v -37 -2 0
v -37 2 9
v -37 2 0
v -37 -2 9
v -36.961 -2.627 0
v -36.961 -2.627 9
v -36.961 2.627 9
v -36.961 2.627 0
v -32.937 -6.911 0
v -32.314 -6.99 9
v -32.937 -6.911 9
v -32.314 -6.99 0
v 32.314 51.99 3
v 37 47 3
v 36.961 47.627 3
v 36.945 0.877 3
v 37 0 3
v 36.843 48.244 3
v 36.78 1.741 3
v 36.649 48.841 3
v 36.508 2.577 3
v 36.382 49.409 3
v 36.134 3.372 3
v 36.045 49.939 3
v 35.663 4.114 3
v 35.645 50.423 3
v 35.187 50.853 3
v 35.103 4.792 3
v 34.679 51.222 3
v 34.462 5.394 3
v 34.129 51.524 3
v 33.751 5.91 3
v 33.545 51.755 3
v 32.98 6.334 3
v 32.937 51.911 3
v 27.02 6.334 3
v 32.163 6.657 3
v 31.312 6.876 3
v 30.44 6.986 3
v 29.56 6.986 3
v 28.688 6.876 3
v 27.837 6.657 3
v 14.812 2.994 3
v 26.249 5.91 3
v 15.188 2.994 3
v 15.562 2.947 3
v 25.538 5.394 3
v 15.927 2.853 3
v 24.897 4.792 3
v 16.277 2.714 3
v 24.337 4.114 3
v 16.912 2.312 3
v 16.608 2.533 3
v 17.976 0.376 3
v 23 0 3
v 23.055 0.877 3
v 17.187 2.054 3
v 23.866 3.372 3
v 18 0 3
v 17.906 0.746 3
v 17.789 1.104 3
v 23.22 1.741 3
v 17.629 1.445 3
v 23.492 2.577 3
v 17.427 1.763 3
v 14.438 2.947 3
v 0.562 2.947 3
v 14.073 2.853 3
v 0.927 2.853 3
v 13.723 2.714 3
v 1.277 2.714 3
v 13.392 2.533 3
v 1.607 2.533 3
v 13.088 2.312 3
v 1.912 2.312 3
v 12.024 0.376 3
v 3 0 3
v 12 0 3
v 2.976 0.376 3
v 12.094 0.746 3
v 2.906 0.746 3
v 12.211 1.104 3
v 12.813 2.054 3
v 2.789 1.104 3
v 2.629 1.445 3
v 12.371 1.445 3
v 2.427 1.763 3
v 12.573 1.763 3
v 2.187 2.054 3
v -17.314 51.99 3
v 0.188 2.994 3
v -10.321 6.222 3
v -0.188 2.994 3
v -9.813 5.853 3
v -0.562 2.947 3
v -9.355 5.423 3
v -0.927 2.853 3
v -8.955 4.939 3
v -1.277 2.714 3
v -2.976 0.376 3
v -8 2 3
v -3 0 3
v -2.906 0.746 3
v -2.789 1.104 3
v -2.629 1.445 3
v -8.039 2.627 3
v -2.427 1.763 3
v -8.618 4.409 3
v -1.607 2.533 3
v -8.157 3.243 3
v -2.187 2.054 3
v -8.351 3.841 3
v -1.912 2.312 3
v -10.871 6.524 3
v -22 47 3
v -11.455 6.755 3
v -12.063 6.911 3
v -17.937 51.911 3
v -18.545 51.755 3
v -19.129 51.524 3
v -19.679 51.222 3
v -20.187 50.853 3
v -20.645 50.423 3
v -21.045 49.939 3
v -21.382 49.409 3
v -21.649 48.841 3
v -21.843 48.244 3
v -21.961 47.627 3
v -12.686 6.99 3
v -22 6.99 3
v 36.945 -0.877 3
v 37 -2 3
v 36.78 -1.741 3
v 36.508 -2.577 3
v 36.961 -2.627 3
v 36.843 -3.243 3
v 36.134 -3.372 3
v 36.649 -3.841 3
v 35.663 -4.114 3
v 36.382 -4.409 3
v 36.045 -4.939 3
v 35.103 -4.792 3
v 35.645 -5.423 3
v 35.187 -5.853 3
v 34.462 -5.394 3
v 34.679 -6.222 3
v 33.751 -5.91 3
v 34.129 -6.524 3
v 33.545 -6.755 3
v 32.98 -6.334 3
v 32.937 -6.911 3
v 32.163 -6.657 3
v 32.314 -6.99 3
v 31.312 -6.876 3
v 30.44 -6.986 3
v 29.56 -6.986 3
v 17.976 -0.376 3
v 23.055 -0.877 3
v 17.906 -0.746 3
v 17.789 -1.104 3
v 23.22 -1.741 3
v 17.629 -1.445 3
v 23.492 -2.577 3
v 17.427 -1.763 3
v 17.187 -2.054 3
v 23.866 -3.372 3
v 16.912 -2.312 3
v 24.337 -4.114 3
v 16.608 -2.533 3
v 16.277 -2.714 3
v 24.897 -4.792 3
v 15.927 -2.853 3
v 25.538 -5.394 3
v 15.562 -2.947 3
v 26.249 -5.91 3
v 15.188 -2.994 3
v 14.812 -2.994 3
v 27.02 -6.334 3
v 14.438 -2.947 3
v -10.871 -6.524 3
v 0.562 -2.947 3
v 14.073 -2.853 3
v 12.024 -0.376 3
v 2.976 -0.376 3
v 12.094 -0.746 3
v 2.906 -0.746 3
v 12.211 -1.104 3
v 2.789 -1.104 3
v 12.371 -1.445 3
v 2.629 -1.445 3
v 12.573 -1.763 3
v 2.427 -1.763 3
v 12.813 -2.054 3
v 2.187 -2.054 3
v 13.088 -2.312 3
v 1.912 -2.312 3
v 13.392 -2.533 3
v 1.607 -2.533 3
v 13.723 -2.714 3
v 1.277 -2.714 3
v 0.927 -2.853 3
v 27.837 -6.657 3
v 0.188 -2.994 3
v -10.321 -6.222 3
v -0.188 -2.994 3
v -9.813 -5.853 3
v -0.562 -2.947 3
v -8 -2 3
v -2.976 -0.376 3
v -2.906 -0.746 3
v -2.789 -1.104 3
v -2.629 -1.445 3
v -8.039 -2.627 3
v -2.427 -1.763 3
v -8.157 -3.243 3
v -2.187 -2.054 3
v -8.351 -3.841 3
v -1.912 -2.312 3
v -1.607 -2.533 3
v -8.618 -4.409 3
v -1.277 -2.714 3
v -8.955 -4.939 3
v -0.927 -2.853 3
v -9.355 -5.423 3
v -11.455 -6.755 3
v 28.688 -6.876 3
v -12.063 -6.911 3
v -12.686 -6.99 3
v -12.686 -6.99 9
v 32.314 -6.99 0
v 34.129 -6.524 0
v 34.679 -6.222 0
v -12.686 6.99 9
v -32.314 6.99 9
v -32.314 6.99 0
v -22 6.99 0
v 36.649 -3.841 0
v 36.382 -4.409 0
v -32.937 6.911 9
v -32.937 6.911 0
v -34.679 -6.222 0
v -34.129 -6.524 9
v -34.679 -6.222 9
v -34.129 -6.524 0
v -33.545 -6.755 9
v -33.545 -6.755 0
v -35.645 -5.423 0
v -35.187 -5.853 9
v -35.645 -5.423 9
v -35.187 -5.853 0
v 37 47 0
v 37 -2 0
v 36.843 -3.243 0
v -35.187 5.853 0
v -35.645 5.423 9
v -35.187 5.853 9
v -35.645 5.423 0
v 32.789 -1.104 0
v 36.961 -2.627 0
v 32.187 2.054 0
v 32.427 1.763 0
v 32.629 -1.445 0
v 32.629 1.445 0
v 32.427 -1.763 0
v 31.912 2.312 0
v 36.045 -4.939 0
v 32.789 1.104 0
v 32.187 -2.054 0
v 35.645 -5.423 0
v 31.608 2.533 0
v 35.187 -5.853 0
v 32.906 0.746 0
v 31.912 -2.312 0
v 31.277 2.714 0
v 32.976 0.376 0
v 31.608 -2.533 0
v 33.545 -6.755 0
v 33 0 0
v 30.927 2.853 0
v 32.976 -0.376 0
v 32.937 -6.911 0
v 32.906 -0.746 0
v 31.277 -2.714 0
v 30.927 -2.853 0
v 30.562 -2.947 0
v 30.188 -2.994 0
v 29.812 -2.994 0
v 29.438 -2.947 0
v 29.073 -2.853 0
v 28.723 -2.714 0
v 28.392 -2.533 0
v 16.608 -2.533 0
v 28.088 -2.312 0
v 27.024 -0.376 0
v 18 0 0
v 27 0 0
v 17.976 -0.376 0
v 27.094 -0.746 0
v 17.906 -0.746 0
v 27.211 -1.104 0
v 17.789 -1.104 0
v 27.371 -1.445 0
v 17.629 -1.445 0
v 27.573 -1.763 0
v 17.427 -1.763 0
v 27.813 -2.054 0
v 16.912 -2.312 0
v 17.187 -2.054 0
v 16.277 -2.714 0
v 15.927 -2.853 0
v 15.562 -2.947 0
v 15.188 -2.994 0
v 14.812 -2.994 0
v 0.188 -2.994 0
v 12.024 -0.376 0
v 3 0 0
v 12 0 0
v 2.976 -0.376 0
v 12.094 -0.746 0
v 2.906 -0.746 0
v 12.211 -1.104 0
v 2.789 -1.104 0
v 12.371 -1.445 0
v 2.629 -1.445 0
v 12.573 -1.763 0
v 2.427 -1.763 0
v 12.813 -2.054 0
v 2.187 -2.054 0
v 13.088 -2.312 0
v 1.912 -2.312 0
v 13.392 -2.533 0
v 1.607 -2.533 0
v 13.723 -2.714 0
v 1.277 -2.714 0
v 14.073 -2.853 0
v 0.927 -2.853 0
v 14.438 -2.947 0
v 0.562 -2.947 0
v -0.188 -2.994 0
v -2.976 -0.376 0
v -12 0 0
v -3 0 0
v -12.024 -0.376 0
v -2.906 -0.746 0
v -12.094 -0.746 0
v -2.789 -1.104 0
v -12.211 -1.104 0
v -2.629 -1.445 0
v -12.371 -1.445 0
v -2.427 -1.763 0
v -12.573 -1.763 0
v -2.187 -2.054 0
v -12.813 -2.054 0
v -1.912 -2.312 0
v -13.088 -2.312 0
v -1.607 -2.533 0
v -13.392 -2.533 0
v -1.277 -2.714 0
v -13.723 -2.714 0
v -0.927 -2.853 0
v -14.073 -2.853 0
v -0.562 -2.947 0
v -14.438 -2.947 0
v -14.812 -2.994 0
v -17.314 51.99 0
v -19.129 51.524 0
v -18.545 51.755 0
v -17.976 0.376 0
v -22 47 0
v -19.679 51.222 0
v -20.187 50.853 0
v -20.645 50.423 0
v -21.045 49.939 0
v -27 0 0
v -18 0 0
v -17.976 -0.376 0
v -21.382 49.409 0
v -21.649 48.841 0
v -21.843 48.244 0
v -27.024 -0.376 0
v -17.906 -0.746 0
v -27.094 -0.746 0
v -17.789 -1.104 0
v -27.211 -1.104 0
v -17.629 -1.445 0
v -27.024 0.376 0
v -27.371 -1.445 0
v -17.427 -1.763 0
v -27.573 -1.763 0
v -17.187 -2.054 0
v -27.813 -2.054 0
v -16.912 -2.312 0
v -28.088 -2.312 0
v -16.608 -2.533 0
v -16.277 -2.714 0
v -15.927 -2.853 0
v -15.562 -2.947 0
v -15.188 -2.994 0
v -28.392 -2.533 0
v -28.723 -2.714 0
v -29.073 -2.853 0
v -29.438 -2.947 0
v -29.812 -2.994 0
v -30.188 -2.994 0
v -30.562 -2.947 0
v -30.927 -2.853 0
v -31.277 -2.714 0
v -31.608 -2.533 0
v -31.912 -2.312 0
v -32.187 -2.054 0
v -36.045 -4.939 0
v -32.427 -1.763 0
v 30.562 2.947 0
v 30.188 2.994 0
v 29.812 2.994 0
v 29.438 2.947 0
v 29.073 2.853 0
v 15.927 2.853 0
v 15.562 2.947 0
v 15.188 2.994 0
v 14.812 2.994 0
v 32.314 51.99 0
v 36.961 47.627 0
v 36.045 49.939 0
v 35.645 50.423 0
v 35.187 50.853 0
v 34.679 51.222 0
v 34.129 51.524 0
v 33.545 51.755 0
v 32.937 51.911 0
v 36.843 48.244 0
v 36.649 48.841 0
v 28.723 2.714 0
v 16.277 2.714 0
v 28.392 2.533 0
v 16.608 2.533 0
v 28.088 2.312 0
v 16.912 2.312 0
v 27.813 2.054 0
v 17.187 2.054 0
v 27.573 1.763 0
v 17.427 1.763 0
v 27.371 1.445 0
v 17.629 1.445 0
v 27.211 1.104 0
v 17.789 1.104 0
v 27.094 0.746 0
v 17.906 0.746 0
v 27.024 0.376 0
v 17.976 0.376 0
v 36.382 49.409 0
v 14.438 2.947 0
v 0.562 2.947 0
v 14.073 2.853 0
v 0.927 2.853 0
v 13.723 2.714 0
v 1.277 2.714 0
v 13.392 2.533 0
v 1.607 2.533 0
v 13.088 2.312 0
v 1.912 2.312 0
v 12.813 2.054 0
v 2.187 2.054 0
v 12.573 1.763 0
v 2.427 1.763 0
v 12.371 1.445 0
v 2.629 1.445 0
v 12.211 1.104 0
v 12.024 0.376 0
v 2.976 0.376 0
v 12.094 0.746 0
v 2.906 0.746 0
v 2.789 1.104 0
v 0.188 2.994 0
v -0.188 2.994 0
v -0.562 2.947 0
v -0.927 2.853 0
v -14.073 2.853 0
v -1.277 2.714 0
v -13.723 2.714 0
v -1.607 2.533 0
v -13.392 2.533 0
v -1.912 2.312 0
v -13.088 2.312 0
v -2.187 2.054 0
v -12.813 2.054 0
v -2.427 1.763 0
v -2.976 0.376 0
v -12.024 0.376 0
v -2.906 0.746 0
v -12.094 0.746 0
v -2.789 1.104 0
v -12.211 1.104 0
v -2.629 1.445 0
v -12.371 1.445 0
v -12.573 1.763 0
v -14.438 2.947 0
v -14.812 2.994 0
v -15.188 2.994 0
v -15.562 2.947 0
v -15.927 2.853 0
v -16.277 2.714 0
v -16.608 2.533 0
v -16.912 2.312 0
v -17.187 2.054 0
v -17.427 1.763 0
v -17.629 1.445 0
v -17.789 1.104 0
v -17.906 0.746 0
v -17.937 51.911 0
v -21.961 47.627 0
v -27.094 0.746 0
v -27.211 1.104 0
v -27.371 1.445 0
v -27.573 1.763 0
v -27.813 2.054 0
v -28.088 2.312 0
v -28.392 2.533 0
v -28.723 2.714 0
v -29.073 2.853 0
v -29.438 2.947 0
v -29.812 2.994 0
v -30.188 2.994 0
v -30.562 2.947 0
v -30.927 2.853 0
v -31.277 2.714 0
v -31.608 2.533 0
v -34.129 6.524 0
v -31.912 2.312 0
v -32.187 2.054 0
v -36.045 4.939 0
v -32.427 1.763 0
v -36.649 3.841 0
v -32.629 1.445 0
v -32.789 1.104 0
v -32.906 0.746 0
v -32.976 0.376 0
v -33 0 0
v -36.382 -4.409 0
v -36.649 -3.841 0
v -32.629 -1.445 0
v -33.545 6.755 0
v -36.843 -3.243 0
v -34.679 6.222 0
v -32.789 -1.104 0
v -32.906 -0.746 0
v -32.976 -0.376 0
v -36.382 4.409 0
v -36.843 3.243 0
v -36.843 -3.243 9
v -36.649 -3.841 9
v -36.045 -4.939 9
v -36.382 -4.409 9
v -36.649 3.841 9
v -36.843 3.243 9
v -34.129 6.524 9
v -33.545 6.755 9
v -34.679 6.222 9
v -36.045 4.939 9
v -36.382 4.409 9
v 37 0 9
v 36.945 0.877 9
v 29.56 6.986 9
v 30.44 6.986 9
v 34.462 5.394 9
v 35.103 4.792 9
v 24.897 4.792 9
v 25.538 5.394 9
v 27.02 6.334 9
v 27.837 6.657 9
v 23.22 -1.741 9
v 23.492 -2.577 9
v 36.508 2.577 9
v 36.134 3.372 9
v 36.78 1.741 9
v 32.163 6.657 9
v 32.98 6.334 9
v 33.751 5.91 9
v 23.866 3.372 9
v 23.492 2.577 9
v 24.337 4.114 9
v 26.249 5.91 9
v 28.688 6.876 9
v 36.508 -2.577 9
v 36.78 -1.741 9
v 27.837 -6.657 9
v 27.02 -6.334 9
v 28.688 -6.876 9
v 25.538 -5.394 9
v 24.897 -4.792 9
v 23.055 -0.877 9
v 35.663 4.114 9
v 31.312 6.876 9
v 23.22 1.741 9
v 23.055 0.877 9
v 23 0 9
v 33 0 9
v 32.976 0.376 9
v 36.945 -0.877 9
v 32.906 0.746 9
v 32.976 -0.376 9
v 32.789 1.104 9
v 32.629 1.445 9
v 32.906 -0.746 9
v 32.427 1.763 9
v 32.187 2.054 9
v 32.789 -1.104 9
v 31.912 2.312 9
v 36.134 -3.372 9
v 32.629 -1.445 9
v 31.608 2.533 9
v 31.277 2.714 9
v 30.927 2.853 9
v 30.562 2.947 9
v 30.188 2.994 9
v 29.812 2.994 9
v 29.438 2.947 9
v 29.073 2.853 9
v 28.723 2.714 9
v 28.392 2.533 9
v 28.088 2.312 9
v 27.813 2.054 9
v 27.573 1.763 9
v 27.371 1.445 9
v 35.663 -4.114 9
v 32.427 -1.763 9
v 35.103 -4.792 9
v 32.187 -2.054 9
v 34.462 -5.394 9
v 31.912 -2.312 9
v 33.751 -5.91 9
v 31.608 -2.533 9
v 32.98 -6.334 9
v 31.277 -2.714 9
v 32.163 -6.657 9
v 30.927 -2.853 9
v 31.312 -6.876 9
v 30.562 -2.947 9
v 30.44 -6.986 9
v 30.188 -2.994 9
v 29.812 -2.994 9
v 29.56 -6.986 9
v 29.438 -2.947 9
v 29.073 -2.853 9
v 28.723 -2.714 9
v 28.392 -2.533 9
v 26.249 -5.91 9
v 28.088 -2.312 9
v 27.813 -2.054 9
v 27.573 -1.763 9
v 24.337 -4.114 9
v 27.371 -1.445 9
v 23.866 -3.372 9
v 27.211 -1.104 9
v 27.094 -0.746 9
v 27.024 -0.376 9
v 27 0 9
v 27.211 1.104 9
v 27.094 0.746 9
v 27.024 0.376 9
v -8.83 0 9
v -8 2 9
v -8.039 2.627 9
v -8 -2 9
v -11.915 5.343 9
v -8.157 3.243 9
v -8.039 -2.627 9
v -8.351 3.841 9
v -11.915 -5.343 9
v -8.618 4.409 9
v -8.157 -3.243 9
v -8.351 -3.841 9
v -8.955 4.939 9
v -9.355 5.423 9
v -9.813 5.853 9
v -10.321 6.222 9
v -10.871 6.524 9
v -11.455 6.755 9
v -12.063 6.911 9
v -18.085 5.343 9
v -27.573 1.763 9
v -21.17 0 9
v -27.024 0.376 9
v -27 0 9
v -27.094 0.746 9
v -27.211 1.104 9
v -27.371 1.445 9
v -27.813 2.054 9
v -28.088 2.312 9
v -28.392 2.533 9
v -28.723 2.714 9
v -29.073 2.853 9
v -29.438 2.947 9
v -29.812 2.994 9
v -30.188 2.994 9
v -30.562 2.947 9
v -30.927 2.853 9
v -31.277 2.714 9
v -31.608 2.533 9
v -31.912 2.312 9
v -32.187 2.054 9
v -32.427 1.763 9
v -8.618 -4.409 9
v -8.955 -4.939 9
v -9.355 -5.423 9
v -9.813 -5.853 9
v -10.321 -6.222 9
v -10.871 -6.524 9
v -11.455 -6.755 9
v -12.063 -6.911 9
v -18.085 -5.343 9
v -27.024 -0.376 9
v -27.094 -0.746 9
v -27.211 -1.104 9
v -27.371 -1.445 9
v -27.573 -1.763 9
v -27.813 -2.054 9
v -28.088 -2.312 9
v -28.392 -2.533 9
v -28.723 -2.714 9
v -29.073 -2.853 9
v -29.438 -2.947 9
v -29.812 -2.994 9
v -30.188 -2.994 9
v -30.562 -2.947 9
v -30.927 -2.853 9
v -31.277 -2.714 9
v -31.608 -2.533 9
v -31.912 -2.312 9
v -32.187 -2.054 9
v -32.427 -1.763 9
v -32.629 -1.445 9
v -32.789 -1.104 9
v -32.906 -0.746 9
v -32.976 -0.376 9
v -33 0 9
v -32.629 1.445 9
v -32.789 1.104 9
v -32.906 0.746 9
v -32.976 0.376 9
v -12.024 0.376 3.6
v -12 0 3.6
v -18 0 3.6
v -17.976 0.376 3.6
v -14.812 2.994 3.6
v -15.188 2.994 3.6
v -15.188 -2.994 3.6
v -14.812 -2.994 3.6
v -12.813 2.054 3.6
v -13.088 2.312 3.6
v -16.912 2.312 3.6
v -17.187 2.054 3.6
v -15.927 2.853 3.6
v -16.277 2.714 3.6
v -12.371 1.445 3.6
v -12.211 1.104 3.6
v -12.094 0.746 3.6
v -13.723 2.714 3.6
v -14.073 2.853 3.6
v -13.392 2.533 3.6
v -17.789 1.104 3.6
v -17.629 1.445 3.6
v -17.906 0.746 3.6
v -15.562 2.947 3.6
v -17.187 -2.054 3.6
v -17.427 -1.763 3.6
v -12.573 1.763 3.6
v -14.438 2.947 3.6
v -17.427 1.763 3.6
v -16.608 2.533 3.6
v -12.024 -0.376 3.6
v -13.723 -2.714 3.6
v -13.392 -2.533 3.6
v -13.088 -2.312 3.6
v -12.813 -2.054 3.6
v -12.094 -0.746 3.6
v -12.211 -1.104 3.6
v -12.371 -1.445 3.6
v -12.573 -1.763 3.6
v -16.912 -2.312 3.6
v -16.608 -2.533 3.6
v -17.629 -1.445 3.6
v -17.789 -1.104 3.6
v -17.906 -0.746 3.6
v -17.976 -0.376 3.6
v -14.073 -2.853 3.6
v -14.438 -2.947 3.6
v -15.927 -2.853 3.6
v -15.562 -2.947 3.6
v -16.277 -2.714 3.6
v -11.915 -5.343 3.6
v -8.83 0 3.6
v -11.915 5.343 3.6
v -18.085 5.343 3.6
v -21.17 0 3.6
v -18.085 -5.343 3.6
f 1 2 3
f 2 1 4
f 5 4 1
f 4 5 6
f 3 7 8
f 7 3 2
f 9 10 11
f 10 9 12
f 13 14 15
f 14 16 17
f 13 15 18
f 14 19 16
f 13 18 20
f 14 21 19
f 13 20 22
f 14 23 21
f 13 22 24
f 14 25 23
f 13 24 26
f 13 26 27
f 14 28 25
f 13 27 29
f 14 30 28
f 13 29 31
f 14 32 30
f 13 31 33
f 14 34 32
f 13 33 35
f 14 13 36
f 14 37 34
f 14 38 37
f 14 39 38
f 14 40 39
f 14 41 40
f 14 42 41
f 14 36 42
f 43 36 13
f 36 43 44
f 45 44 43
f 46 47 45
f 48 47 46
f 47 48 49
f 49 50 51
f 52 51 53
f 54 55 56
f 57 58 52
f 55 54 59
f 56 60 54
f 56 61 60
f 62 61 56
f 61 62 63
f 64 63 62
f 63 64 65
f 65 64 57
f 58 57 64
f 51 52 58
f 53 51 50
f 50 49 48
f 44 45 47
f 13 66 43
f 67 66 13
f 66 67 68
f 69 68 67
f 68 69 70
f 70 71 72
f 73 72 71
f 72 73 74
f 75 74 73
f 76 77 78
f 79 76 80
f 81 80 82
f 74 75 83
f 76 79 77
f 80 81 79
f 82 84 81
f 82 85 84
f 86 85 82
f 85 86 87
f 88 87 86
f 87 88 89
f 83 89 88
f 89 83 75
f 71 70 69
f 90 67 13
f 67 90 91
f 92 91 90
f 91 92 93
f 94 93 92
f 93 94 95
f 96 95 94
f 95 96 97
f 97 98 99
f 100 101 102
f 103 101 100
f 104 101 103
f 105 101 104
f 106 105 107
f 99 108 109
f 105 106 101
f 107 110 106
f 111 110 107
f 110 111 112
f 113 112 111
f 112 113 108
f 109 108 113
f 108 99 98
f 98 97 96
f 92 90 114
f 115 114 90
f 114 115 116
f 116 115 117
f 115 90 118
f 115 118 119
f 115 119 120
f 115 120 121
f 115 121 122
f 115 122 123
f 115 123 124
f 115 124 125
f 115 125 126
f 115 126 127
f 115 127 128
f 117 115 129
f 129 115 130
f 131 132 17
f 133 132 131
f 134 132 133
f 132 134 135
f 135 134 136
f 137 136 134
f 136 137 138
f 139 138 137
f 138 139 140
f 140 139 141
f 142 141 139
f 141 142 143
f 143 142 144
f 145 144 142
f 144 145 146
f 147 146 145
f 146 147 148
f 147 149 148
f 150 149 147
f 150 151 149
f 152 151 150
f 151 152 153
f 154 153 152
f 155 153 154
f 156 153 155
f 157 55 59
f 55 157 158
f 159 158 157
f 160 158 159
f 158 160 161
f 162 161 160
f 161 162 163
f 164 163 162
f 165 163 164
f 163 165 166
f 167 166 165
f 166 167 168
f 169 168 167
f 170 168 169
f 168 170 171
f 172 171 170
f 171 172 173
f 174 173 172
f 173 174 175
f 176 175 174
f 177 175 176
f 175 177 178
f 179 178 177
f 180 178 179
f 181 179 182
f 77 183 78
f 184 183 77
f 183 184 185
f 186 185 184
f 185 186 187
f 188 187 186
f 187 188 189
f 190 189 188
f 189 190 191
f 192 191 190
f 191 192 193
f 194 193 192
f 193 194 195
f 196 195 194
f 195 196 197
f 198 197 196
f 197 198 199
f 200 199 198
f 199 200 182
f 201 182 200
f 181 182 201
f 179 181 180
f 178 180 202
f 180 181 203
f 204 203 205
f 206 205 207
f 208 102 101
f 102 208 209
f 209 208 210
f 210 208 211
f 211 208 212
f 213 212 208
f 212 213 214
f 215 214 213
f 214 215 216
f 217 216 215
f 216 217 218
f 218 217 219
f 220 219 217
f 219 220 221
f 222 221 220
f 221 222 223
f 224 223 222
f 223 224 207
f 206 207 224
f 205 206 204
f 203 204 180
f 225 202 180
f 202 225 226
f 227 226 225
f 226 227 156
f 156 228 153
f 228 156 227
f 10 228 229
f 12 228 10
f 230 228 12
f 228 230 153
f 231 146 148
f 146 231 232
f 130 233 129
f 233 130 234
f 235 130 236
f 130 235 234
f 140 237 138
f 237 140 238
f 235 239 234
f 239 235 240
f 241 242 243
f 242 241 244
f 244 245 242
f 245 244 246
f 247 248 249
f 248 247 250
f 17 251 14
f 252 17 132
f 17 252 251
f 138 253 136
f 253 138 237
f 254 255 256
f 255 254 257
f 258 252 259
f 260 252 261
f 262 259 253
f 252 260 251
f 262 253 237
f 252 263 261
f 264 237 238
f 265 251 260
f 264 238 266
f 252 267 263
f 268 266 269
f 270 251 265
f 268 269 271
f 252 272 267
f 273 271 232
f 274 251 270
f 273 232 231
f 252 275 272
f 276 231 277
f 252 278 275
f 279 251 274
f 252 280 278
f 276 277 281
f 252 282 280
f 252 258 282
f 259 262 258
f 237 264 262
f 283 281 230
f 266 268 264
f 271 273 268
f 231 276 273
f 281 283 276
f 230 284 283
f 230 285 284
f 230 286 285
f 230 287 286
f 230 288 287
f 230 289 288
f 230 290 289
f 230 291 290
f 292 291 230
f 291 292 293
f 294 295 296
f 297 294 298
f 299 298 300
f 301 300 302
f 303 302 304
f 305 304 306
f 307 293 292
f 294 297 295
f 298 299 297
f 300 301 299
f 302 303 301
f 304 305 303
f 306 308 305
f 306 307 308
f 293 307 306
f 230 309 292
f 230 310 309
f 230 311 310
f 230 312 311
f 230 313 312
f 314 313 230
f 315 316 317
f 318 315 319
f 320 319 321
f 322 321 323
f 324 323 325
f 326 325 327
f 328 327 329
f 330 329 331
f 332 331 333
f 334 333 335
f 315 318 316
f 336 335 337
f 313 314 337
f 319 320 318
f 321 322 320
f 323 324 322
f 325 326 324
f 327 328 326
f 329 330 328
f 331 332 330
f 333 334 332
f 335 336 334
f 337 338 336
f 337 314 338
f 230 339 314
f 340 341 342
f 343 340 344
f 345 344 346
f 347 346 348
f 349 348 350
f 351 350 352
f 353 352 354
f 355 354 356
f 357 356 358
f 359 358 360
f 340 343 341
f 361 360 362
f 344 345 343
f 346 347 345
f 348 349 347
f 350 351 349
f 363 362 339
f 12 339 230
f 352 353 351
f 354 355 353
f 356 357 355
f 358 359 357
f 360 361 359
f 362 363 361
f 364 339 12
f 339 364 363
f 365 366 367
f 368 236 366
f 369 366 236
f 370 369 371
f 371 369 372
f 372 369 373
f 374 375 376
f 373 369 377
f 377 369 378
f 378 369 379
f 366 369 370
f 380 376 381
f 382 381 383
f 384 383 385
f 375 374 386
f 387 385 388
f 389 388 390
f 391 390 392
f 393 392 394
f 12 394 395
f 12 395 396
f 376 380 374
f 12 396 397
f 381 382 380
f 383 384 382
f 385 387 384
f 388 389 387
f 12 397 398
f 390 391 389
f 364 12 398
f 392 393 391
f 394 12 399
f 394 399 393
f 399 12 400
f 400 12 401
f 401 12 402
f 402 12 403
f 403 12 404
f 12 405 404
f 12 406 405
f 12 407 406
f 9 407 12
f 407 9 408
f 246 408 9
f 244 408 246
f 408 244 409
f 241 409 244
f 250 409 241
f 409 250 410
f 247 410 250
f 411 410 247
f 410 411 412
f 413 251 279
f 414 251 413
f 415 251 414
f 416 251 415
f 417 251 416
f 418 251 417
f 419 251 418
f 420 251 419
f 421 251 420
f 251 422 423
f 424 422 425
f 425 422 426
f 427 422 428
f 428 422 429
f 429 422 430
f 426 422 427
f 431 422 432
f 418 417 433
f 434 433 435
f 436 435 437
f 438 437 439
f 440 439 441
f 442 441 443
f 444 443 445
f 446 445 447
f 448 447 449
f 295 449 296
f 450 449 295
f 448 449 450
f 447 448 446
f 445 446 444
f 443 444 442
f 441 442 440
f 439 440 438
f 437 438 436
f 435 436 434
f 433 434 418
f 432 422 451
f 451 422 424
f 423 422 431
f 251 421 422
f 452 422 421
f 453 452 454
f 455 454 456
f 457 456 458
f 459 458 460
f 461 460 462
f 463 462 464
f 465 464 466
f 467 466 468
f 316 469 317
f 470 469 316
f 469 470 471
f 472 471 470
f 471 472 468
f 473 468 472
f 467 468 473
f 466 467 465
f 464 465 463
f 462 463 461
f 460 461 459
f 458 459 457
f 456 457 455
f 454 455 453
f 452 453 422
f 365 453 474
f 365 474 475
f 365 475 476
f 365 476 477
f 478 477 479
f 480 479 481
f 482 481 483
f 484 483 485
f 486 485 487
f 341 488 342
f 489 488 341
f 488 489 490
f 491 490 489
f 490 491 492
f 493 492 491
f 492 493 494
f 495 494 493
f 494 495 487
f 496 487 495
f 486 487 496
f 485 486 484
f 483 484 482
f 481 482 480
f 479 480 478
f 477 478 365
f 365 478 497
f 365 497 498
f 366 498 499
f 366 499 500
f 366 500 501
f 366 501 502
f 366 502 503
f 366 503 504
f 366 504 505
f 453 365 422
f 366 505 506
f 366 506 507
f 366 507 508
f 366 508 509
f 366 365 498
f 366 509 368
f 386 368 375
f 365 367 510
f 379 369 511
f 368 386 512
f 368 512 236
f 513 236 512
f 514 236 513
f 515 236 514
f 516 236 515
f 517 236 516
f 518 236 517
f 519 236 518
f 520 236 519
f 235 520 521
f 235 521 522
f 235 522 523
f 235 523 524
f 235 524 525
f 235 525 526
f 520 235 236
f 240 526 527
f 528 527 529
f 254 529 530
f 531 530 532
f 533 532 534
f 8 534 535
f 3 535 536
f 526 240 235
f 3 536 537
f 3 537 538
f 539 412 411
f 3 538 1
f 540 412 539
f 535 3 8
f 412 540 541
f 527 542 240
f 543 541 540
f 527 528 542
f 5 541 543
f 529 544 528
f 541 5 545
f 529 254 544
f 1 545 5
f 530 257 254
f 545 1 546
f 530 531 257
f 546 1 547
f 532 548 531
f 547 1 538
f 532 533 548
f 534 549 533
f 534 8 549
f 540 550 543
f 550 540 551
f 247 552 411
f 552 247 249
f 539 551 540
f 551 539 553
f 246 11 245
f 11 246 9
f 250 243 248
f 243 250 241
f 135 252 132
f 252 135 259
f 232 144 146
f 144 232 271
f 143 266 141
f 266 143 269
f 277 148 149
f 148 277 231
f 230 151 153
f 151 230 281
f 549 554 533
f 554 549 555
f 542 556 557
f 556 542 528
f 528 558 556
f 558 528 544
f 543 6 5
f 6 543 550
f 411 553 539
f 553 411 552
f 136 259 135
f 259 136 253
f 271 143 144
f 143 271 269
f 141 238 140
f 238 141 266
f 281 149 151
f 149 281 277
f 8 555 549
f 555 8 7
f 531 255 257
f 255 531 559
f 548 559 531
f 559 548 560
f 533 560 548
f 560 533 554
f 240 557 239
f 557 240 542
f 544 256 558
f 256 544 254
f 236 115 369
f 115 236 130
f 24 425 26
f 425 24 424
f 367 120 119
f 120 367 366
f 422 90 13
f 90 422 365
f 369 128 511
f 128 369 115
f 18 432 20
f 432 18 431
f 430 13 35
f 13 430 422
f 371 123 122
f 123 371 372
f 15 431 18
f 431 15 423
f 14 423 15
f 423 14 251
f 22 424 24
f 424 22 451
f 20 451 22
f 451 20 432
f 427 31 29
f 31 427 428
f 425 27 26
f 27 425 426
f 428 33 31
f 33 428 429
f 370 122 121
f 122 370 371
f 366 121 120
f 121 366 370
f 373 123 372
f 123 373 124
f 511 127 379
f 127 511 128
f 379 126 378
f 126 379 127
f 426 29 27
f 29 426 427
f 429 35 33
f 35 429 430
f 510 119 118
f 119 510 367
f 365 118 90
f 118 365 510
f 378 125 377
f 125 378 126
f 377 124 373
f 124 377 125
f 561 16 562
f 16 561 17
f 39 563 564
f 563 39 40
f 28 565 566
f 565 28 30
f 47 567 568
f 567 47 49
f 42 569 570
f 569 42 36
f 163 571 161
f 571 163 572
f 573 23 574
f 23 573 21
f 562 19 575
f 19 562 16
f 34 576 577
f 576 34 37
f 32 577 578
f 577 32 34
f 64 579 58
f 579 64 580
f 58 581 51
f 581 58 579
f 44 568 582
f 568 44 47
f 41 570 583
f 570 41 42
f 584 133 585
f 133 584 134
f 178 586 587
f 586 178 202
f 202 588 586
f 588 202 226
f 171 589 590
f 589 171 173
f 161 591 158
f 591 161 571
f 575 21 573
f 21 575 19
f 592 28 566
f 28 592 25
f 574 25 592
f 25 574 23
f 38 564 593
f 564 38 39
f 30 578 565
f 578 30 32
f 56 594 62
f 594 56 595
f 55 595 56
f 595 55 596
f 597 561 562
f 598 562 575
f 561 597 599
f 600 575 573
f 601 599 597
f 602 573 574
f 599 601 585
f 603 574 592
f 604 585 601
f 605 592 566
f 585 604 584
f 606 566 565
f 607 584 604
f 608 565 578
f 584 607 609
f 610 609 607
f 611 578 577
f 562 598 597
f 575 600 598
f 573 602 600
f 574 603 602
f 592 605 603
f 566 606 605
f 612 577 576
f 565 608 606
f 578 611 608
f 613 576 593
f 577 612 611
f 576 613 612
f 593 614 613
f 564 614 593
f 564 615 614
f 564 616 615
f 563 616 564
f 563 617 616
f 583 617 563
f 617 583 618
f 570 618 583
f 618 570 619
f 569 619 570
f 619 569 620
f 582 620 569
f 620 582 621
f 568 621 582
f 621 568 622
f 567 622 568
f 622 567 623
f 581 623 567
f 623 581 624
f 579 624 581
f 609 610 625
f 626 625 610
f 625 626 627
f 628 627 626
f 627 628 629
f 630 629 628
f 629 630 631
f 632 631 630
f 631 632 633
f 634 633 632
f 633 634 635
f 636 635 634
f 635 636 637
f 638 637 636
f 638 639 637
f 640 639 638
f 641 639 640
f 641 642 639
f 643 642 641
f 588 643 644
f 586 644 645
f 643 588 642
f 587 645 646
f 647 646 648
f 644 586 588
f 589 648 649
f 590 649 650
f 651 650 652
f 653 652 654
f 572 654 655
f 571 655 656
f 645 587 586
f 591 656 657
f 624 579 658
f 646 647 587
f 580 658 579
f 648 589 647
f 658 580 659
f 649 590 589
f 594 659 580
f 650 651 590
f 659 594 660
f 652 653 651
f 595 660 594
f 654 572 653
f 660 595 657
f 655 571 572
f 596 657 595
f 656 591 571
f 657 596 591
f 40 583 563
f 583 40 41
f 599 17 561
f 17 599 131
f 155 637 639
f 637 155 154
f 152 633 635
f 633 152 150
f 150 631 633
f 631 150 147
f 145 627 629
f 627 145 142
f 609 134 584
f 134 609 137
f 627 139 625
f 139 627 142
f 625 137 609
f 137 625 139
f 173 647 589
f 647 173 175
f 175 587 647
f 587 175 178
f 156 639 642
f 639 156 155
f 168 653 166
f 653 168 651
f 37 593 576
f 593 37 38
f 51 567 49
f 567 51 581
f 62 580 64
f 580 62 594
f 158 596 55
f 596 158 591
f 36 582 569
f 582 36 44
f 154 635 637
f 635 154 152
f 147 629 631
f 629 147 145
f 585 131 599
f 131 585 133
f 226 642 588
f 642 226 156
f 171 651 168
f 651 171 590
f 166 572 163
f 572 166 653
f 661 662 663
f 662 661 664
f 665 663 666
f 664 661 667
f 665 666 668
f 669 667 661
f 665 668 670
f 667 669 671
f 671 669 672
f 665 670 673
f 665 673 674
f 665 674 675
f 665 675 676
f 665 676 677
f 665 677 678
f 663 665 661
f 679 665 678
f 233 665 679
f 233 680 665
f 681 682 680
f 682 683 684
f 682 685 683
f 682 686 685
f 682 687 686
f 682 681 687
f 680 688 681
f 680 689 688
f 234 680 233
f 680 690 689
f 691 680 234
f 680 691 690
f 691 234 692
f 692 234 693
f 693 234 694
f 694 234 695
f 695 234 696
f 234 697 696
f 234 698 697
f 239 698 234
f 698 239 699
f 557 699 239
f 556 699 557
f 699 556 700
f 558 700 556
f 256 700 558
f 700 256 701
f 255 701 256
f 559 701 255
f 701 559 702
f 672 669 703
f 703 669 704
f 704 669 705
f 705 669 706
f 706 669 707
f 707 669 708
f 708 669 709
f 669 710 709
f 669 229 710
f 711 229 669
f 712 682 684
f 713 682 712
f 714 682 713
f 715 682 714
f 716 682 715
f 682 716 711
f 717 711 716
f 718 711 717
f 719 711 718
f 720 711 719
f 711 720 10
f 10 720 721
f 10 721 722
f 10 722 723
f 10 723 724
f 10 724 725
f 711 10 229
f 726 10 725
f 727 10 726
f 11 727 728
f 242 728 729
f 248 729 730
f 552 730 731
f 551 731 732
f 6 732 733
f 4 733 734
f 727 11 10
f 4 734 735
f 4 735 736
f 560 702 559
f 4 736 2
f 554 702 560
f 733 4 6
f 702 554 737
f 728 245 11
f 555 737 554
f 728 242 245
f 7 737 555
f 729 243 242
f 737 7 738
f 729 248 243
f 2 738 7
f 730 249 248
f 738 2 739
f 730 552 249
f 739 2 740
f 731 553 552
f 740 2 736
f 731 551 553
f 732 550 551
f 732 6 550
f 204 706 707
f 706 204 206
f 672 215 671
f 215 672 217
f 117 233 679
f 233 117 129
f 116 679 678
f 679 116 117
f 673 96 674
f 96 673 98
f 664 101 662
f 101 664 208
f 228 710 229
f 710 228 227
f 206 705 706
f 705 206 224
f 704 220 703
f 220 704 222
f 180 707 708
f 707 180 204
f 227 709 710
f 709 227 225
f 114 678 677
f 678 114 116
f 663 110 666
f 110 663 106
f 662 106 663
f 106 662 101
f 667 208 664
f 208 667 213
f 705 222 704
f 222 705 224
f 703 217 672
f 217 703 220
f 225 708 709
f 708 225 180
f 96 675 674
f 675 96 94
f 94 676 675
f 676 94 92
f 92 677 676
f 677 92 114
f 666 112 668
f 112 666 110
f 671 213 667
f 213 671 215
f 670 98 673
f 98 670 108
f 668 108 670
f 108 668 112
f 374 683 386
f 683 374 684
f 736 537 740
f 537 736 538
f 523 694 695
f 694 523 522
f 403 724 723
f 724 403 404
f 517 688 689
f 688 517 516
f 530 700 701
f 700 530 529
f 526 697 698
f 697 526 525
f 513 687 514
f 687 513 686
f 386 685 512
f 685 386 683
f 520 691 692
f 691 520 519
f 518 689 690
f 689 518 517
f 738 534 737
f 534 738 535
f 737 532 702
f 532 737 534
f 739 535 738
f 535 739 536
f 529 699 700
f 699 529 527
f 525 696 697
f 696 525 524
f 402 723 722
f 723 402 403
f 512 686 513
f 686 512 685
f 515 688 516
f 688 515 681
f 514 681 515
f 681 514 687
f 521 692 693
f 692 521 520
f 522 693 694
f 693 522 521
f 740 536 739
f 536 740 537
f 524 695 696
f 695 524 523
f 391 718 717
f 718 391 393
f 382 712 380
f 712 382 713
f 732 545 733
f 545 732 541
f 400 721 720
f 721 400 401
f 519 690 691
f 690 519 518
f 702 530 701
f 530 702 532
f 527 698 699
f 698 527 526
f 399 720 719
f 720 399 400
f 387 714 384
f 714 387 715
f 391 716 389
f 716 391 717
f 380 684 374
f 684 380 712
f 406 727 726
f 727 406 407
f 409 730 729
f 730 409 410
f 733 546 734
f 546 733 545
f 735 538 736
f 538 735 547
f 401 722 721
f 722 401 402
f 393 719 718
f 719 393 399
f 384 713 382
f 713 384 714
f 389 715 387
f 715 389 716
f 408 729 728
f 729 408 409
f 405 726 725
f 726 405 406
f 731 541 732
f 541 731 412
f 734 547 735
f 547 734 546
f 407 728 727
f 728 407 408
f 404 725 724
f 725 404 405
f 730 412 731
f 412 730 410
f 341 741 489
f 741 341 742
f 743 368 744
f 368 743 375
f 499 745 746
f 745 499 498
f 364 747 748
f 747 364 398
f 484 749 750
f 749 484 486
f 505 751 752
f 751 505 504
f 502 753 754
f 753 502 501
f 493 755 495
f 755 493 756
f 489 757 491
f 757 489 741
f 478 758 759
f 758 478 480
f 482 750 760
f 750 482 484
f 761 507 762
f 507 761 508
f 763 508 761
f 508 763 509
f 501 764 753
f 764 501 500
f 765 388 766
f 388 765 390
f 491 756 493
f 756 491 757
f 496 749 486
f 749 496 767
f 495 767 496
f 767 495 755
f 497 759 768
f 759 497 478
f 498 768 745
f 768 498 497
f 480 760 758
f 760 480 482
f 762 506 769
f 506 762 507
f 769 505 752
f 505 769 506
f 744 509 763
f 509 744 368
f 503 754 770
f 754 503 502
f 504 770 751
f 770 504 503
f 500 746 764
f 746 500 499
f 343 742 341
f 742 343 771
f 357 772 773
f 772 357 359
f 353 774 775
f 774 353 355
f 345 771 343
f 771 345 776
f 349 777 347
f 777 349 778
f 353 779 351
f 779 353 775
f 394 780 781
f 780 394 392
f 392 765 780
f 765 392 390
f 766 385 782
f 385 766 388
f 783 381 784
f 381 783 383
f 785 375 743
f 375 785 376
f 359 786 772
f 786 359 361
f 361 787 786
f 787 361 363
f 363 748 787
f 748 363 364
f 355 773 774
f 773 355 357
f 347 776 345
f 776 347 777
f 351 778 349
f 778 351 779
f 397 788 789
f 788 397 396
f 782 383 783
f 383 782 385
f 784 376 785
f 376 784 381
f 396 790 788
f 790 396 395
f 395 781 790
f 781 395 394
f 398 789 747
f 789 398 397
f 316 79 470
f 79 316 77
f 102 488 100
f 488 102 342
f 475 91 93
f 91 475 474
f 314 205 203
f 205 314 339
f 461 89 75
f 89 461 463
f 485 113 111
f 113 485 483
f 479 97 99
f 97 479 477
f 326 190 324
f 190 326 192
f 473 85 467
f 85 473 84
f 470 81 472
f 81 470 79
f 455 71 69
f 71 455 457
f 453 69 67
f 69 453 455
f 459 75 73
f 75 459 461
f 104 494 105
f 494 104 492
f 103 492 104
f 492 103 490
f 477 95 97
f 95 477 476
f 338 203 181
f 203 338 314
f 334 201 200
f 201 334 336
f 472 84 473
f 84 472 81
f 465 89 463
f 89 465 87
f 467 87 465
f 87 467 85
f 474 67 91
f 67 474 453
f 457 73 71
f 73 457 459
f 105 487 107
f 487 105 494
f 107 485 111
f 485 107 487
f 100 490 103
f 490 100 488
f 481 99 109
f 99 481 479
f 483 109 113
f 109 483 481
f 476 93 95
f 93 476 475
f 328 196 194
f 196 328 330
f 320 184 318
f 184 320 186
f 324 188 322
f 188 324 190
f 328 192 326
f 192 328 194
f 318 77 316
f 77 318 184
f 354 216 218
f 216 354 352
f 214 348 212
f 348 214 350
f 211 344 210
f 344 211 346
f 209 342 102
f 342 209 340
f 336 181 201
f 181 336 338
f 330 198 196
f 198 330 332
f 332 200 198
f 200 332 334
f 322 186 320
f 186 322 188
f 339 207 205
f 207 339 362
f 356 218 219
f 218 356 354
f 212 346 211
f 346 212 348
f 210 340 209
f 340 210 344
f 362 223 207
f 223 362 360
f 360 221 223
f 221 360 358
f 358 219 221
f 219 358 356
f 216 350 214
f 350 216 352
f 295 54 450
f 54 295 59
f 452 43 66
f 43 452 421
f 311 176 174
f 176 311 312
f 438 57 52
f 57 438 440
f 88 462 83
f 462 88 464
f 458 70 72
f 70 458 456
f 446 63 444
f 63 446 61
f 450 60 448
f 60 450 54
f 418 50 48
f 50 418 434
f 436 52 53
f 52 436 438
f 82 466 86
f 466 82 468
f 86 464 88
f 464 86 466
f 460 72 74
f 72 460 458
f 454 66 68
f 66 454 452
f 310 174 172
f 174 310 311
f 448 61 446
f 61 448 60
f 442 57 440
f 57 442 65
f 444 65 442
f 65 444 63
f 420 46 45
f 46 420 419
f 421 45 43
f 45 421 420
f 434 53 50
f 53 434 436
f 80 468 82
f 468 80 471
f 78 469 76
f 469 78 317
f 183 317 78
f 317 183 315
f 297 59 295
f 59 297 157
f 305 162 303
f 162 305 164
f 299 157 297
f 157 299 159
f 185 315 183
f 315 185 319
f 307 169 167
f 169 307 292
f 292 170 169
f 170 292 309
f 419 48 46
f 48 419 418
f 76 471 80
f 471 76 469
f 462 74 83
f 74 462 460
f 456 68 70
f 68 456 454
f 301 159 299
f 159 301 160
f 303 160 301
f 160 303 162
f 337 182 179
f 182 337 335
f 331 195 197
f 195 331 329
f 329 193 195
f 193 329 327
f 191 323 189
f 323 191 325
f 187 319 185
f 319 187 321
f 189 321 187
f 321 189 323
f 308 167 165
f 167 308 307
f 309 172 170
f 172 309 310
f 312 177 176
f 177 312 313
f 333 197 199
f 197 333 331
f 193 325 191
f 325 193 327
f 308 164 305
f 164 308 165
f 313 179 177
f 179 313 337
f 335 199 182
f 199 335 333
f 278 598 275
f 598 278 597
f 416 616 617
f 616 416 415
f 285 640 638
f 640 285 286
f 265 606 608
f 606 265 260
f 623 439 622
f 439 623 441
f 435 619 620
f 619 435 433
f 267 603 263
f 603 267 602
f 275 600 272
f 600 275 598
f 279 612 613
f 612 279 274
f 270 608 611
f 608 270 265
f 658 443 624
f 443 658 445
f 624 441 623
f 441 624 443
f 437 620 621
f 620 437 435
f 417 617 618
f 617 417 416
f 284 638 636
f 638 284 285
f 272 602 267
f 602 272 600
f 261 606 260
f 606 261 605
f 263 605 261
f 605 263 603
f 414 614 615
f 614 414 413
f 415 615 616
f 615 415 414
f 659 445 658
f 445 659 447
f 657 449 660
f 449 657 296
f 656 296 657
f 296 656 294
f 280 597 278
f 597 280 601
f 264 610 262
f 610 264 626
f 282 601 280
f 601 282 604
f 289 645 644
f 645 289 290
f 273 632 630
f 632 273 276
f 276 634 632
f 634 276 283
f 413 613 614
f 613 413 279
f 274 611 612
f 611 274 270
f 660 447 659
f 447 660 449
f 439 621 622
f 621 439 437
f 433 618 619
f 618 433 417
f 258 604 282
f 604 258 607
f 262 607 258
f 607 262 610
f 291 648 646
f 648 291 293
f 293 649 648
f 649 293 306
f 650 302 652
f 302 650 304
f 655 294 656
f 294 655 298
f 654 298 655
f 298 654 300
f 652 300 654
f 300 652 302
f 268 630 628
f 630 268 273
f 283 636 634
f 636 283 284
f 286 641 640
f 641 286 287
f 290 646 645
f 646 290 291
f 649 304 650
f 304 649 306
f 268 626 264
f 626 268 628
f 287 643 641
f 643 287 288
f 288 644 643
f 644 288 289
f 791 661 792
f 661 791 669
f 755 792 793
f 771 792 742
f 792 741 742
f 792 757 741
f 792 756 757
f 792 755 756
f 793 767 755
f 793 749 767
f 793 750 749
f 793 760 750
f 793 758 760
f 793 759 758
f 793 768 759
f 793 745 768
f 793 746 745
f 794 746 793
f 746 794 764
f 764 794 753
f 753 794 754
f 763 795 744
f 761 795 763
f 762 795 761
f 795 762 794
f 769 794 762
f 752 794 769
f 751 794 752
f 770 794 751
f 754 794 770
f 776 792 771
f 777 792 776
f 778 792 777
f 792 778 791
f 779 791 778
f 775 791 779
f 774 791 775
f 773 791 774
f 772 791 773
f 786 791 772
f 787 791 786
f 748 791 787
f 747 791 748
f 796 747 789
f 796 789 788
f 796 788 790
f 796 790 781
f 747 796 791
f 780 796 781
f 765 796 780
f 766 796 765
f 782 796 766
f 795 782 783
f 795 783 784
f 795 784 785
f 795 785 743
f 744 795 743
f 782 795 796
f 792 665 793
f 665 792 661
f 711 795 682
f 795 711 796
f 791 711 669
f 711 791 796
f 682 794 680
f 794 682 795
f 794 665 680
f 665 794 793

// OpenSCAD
$fn = 50;


difference() {
	union() {
		translate(v = [0, 0, 0]) {
			rotate(a = [0, 0, 0]) {
				hull() {
					translate(v = [-32.0000000000, 2.0000000000, 0]) {
						rotate(a = [0, 0, 0]) {
							translate(v = [0, 0, 0]) {
								rotate(a = [0, 0, 0]) {
									cylinder(h = 3, r = 5);
								}
							}
						}
					}
					translate(v = [32.0000000000, 2.0000000000, 0]) {
						rotate(a = [0, 0, 0]) {
							translate(v = [0, 0, 0]) {
								rotate(a = [0, 0, 0]) {
									cylinder(h = 3, r = 5);
								}
							}
						}
					}
					translate(v = [-32.0000000000, -2.0000000000, 0]) {
						rotate(a = [0, 0, 0]) {
							translate(v = [0, 0, 0]) {
								rotate(a = [0, 0, 0]) {
									cylinder(h = 3, r = 5);
								}
							}
						}
					}
					translate(v = [32.0000000000, -2.0000000000, 0]) {
						rotate(a = [0, 0, 0]) {
							translate(v = [0, 0, 0]) {
								rotate(a = [0, 0, 0]) {
									cylinder(h = 3, r = 5);
								}
							}
						}
					}
				}
			}
		}
		translate(v = [7.5000000000, 22.5000000000, 0]) {
			rotate(a = [0, 0, 0]) {
				hull() {
					translate(v = [-24.5000000000, 24.5000000000, 0]) {
						rotate(a = [0, 0, 0]) {
							translate(v = [0, 0, 0]) {
								rotate(a = [0, 0, 0]) {
									cylinder(h = 3, r = 5);
								}
							}
						}
					}
					translate(v = [24.5000000000, 24.5000000000, 0]) {
						rotate(a = [0, 0, 0]) {
							translate(v = [0, 0, 0]) {
								rotate(a = [0, 0, 0]) {
									cylinder(h = 3, r = 5);
								}
							}
						}
					}
					translate(v = [-24.5000000000, -24.5000000000, 0]) {
						rotate(a = [0, 0, 0]) {
							translate(v = [0, 0, 0]) {
								rotate(a = [0, 0, 0]) {
									cylinder(h = 3, r = 5);
								}
							}
						}
					}
					translate(v = [24.5000000000, -24.5000000000, 0]) {
						rotate(a = [0, 0, 0]) {
							translate(v = [0, 0, 0]) {
								rotate(a = [0, 0, 0]) {
									cylinder(h = 3, r = 5);
								}
							}
						}
					}
				}
			}
		}
		translate(v = [30.0000000000, 0, 0]) {
			rotate(a = [0, 0, 0]) {
				cylinder(h = 9, r = 7.0000000000);
			}
		}
		translate(v = [-22.5000000000, 0, 0]) {
			rotate(a = [0, 0, 0]) {
				hull() {
					translate(v = [-9.5000000000, 2.0000000000, 0]) {
						rotate(a = [0, 0, 0]) {
							translate(v = [0, 0, 0]) {
								rotate(a = [0, 0, 0]) {
									cylinder(h = 9, r = 5);
								}
							}
						}
					}
					translate(v = [9.5000000000, 2.0000000000, 0]) {
						rotate(a = [0, 0, 0]) {
							translate(v = [0, 0, 0]) {
								rotate(a = [0, 0, 0]) {
									cylinder(h = 9, r = 5);
								}
							}
						}
					}
					translate(v = [-9.5000000000, -2.0000000000, 0]) {
						rotate(a = [0, 0, 0]) {
							translate(v = [0, 0, 0]) {
								rotate(a = [0, 0, 0]) {
									cylinder(h = 9, r = 5);
								}
							}
						}
					}
					translate(v = [9.5000000000, -2.0000000000, 0]) {
						rotate(a = [0, 0, 0]) {
							translate(v = [0, 0, 0]) {
								rotate(a = [0, 0, 0]) {
									cylinder(h = 9, r = 5);
								}
							}
						}
					}
				}
			}
		}
	}
	union() {
		translate(v = [-30.0000000000, 0.0000000000, 0]) {
			rotate(a = [0, 0, 0]) {
				translate(v = [0, 0, -50]) {
					rotate(a = [0, 0, 0]) {
						cylinder(h = 100, r = 3.0000000000);
					}
				}
			}
		}
		translate(v = [-15.0000000000, 0.0000000000, 0]) {
			rotate(a = [0, 0, 0]) {
				translate(v = [0, 0, -50]) {
					rotate(a = [0, 0, 0]) {
						cylinder(h = 100, r = 3.0000000000);
					}
				}
			}
		}
		translate(v = [0.0000000000, 0.0000000000, 0]) {
			rotate(a = [0, 0, 0]) {
				translate(v = [0, 0, -50]) {
					rotate(a = [0, 0, 0]) {
						cylinder(h = 100, r = 3.0000000000);
					}
				}
			}
		}
		translate(v = [15.0000000000, 0.0000000000, 0]) {
			rotate(a = [0, 0, 0]) {
				translate(v = [0, 0, -50]) {
					rotate(a = [0, 0, 0]) {
						cylinder(h = 100, r = 3.0000000000);
					}
				}
			}
		}
		translate(v = [30.0000000000, 0.0000000000, 0]) {
			rotate(a = [0, 0, 0]) {
				translate(v = [0, 0, -50]) {
					rotate(a = [0, 0, 0]) {
						cylinder(h = 100, r = 3.0000000000);
					}
				}
			}
		}
		translate(v = [-15.0000000000, 0, 3.6000000000]) {
			rotate(a = [0, 0, 0]) {
				#translate(v = [0, 0, 0]) {
					rotate(a = [0, 0, 0]) {
						linear_extrude(height = 5.4000000000) {
							polygon(points = [[6.1700000000, 0.0000000000], [3.0850000000, 5.3433767413], [-3.0850000000, 5.3433767413], [-6.1700000000, 0.0000000000], [-3.0850000000, -5.3433767413], [3.0850000000, -5.3433767413]]);
						}
					}
				}
			}
		}
	}
}
